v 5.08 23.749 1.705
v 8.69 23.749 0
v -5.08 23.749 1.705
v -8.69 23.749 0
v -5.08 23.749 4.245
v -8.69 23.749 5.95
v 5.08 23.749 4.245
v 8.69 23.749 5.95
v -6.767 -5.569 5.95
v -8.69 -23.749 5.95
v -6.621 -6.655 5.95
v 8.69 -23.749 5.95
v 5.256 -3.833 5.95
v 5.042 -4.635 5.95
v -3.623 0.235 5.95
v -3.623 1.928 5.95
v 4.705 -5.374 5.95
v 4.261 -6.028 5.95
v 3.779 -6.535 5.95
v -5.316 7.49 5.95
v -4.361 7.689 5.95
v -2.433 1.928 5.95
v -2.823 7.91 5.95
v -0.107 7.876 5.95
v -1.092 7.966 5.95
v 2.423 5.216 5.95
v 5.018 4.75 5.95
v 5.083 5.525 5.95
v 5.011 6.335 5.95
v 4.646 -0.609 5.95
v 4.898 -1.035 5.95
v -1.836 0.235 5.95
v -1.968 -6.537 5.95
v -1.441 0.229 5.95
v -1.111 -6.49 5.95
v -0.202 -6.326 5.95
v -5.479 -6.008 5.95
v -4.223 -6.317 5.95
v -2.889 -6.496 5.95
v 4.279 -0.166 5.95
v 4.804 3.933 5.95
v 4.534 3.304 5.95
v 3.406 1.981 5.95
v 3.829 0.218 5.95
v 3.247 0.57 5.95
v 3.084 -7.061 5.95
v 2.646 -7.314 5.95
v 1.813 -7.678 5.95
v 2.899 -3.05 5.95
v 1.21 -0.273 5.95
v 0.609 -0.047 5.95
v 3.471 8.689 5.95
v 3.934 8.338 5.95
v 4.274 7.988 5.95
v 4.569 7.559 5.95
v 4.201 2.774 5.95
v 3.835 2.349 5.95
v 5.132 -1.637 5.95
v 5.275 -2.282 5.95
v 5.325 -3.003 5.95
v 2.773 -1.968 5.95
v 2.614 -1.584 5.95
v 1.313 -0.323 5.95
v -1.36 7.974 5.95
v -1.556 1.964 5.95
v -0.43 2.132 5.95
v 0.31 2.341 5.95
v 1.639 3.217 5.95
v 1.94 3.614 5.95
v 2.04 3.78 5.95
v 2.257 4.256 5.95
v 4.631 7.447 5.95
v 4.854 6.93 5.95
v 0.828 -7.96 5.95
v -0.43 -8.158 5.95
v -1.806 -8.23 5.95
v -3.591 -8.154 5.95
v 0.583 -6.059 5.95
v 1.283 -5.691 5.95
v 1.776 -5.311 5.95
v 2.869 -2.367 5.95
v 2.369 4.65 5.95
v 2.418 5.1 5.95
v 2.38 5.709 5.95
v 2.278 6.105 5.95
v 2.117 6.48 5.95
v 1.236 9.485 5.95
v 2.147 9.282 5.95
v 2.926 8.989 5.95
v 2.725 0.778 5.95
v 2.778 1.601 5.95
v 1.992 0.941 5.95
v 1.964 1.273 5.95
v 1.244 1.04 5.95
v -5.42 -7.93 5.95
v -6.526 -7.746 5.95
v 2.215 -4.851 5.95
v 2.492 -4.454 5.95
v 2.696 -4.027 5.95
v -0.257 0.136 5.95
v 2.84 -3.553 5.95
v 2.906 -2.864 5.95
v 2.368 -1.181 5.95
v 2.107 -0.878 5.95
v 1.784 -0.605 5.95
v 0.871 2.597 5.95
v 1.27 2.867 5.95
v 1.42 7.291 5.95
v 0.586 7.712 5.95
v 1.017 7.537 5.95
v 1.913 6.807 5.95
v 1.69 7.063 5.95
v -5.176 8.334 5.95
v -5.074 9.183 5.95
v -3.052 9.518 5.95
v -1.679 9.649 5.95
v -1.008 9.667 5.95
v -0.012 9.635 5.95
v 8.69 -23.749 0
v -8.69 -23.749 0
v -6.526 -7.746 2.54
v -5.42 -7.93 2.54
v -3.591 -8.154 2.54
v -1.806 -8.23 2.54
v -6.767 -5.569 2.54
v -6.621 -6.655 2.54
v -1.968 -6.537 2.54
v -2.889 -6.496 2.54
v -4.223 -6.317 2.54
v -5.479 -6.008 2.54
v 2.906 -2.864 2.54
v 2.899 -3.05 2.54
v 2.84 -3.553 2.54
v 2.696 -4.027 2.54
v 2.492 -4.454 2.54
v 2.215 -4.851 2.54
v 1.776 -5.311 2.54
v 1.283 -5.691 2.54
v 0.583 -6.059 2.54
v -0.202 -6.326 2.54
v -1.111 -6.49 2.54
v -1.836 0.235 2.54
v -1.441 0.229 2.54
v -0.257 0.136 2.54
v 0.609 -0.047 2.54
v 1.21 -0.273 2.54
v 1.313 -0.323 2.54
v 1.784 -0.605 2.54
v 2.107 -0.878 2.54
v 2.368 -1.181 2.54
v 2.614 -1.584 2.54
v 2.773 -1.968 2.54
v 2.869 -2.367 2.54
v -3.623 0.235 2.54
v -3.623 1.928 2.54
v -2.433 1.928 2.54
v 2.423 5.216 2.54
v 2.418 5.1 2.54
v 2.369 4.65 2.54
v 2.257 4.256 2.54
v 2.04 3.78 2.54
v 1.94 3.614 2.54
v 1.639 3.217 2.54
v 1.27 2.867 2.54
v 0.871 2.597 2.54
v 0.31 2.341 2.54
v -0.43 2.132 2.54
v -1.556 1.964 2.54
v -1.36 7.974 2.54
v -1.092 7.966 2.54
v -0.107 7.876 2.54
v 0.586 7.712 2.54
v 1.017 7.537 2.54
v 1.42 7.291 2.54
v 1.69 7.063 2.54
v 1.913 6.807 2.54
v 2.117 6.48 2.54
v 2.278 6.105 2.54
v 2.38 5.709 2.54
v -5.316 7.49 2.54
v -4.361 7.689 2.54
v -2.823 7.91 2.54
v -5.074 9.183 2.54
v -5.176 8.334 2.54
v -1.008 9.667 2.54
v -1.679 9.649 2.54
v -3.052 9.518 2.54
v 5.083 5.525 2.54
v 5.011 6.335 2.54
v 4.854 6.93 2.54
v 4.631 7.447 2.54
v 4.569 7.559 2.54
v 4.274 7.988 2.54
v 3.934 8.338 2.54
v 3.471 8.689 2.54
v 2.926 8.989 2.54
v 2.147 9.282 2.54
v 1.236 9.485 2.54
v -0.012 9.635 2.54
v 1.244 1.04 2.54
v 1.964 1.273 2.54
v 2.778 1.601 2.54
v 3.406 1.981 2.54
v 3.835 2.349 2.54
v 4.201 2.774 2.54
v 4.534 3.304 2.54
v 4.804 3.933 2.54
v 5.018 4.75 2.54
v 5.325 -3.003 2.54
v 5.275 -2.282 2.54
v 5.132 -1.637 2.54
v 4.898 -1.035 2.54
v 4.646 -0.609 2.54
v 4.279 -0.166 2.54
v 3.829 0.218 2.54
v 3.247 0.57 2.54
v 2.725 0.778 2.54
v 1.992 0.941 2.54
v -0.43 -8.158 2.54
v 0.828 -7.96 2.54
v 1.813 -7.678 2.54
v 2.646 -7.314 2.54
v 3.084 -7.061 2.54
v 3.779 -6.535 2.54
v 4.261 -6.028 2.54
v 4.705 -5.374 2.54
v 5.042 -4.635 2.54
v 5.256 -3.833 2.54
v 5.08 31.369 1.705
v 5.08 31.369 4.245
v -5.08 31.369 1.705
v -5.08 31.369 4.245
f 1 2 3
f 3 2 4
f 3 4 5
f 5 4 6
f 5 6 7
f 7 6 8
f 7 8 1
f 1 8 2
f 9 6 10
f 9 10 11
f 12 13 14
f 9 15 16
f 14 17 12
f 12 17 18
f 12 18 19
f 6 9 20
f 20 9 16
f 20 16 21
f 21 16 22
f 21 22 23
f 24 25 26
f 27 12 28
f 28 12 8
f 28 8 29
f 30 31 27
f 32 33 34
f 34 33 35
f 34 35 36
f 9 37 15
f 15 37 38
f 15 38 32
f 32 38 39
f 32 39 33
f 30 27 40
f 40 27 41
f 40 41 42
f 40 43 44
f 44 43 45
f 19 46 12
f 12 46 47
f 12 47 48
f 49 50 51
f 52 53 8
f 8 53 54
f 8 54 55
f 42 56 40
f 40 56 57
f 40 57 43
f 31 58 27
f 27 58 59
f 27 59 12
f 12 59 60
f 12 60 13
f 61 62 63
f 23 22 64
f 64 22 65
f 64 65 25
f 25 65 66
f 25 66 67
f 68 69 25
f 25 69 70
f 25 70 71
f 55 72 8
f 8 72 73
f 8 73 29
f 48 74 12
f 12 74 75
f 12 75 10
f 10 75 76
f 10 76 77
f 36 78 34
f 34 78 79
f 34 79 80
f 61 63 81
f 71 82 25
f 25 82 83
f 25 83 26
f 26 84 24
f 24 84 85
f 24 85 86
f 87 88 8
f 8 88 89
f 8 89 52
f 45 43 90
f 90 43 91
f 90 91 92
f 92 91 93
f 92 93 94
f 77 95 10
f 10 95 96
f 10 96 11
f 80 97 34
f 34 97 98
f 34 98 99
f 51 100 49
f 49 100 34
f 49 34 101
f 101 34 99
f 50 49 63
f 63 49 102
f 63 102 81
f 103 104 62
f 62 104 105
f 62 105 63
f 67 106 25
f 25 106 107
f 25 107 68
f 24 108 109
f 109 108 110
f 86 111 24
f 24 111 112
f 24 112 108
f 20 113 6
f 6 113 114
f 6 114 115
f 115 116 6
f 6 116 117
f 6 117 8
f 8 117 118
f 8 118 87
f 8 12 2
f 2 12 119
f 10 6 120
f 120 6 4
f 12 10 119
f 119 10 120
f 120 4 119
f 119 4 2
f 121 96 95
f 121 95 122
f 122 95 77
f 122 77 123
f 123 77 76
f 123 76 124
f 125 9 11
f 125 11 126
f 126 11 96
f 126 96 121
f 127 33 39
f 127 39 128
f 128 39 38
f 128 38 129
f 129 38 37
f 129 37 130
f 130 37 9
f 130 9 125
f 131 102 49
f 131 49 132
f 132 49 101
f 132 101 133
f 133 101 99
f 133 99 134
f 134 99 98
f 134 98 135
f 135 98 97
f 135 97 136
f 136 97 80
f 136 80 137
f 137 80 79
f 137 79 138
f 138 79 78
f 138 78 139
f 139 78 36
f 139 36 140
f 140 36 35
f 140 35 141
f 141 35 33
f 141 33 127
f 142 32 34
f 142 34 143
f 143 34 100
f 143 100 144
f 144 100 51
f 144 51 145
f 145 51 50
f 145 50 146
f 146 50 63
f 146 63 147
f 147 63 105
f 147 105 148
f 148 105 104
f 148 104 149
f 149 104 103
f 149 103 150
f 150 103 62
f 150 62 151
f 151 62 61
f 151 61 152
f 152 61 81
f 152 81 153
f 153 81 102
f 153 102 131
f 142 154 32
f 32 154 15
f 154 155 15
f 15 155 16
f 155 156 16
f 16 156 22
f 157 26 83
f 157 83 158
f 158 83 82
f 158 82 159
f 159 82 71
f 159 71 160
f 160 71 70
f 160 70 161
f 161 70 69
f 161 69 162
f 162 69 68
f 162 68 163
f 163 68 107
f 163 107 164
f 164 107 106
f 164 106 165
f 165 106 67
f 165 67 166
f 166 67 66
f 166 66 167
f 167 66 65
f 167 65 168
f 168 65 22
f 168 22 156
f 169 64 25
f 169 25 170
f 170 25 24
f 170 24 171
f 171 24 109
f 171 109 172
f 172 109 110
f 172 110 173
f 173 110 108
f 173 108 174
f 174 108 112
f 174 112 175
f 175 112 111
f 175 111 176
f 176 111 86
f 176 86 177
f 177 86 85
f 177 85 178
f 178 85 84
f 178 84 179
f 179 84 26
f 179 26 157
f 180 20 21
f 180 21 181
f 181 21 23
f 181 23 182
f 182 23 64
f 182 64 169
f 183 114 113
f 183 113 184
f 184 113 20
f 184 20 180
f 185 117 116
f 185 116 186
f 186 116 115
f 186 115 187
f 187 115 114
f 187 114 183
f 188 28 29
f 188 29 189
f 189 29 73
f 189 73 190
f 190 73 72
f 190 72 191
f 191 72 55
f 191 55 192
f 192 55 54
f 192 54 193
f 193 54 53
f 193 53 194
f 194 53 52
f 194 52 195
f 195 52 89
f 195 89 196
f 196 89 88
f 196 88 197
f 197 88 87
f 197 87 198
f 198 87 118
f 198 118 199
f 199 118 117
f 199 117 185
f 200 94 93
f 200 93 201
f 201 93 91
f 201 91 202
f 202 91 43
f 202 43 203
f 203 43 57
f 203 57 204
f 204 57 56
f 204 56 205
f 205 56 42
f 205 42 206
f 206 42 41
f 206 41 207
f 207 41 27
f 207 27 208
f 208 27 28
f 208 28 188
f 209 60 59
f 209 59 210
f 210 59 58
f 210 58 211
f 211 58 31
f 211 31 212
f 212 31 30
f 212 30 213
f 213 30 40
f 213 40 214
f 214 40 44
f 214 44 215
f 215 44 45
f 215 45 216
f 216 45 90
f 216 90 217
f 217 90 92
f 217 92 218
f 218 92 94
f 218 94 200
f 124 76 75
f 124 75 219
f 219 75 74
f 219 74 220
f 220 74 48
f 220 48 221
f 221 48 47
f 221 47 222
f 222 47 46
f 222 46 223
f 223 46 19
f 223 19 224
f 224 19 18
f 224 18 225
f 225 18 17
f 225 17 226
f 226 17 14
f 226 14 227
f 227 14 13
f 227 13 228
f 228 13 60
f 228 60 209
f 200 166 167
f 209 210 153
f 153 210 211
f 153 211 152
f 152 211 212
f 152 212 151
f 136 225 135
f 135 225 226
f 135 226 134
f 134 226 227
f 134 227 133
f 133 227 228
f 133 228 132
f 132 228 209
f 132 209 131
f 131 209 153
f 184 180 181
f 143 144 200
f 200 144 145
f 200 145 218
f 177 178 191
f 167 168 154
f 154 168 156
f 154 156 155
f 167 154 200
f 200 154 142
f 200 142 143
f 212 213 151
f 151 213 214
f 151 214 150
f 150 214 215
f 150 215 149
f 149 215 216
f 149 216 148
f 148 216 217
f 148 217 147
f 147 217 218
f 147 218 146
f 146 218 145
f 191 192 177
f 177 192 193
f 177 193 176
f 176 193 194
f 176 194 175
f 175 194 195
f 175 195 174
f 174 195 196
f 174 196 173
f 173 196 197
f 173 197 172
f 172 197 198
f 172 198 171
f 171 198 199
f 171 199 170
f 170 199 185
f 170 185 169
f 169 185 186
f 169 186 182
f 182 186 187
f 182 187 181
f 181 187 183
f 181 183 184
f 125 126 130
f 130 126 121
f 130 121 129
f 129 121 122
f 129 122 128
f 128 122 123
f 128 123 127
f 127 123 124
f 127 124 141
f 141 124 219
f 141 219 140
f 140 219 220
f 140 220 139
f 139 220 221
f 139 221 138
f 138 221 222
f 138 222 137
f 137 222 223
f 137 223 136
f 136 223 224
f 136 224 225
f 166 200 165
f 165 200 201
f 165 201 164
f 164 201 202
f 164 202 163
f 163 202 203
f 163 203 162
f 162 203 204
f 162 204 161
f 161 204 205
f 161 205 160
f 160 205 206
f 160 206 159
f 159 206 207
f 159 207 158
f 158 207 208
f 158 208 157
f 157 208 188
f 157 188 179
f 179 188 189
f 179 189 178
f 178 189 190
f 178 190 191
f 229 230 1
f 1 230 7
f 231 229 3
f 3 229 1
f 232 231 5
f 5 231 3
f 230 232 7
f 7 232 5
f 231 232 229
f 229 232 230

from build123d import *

# Parameters (mm, degrees)
SKETCH1_W           = 17.38
SKETCH1_H           = 47.498
BOSS_EXTRUDE1_DEPTH = 5.95
CUT_EXTRUDE1_DEPTH  = 3.41
SKETCH3_W           = 10.16
SKETCH3_H           = 2.54
BOSS_EXTRUDE2_DEPTH = 7.62


with BuildPart() as part:
    # Sketch1 → Boss-Extrude1 (new body)
    with BuildSketch(Plane.XY):
        Rectangle(SKETCH1_W, SKETCH1_H)
    extrude(amount=BOSS_EXTRUDE1_DEPTH)

    # Sketch2 → Cut-Extrude1 (cut)
    with BuildSketch(Plane.XY.offset(5.95)):
        with BuildLine():
            add(Edge.make_bspline(
                [(-6.52556172, -7.745867902), (-6.541736639, -7.548099343), (-6.573175083, -7.163705708), (-6.622418565, -6.602266915), (-6.692949133, -6.075060478), (-6.743124974, -5.734210105), (-6.767407423, -5.569256574)],
                knots=[0, 0, 0, 0, 1.086986854, 2.112726256, 3.08665945, 4, 4, 4, 4], degree=3))
            add(Edge.make_bspline(
                [(-6.767407423, -5.569256574), (-6.530107504, -5.65714284), (-6.071226782, -5.827093648), (-5.393252267, -6.037243911), (-4.756216501, -6.210347647), (-4.152431156, -6.334769991), (-3.57872429, -6.427846187), (-3.025776205, -6.484148091), (-2.49184335, -6.53213088), (-2.140956001, -6.53515245), (-1.968281752, -6.536639386)],
                knots=[0, 0, 0, 0, 1.233271994, 2.384850126, 3.458654952, 4.449698821, 5.388467082, 6.290264974, 7.158626795, 8, 8, 8, 8], degree=3))
            add(Edge.make_bspline(
                [(-1.968281752, -6.536639386), (-1.75133924, -6.531980014), (-1.327278106, -6.522872262), (-0.706888473, -6.439166817), (-0.115695472, -6.315014093), (0.441587435, -6.128655567), (0.959134586, -5.891680706), (1.434346256, -5.60536251), (1.852688666, -5.254947102), (2.223631893, -4.861847073), (2.530540018, -4.420139374), (2.745748542, -3.932531949), (2.886322279, -3.410547349), (2.899628723, -3.048438292), (2.906420702, -2.86360777)],
                knots=[0, 0, 0, 0, 1.146655432, 2.241386427, 3.304909894, 4.337056057, 5.341489706, 6.310260062, 7.261210465, 8.21792905, 9.162042711, 10.089298595, 11.024724922, 12, 12, 12, 12], degree=3))
            add(Edge.make_bspline(
                [(2.906420702, -2.86360777), (2.901024718, -2.714484768), (2.890393101, -2.420670199), (2.793891256, -1.993867016), (2.631400278, -1.594911679), (2.411871676, -1.222767409), (2.129631062, -0.880783066), (1.777265044, -0.58591917), (1.362310422, -0.334947261), (0.882019785, -0.126391182), (0.326060942, 0.041506515), (-0.317039003, 0.152592763), (-1.047099623, 0.225103406), (-1.563744548, 0.231610819), (-1.836022383, 0.235040301)],
                knots=[0, 0, 0, 0, 0.838837545, 1.652747662, 2.448248001, 3.255922832, 4.076848485, 4.9323124, 5.830012564, 6.798601416, 7.873321705, 9.091954711, 10.467426588, 12, 12, 12, 12], degree=3))
            add(Edge.make_bspline(
                [(-1.836022383, 0.235040301), (-2.118175703, 0.235040301), (-2.71397267, 0.235040301), (-3.309769636, 0.235040301), (-3.623413283, 0.235040301)],
                knots=[0, 0, 0, 0, 0.947145877, 2, 2, 2, 2], degree=3))
            add(Edge.make_bspline(
                [(-3.623413283, 0.235040301), (-3.623413283, 0.401309222), (-3.623413283, 0.716212481), (-3.623413283, 1.164634723), (-3.623413283, 1.562672442), (-3.623413283, 1.812075824), (-3.623413283, 1.927960223)],
                knots=[0, 0, 0, 0, 1.178571429, 2.232142857, 3.178571429, 4, 4, 4, 4], degree=3))
            add(Edge.make_bspline(
                [(-3.623413283, 1.927960223), (-3.414317518, 1.927960223), (-3.017539412, 1.927960223), (-2.620761305, 1.927960223), (-2.433078962, 1.927960223)],
                knots=[0, 0, 0, 0, 1.053968254, 2, 2, 2, 2], degree=3))
            add(Edge.make_bspline(
                [(-2.433078962, 1.927960223), (-2.213703602, 1.930624231), (-1.782777551, 1.935857226), (-1.151023939, 2.0055806), (-0.542619853, 2.10015175), (0.035880784, 2.240575523), (0.575646904, 2.432273783), (1.055902319, 2.692411738), (1.469541725, 3.020520175), (1.811722492, 3.405969987), (2.08288473, 3.830741215), (2.27766536, 4.278496537), (2.402253448, 4.741516196), (2.415895086, 5.057332232), (2.422729296, 5.21555025)],
                knots=[0, 0, 0, 0, 1.198563504, 2.354376706, 3.470500059, 4.562664134, 5.603894105, 6.593029745, 7.533946595, 8.475140529, 9.397714259, 10.276520456, 11.136568486, 12, 12, 12, 12], degree=3))
            add(Edge.make_bspline(
                [(2.422729296, 5.21555025), (2.41848686, 5.321507932), (2.410108472, 5.530763797), (2.361808308, 5.839798802), (2.272318537, 6.136976064), (2.152371646, 6.424223648), (1.999138717, 6.693438231), (1.814730838, 6.941867492), (1.595760775, 7.159214462), (1.345598912, 7.350011462), (1.071173531, 7.516024108), (0.768770465, 7.652369954), (0.443224079, 7.761631168), (-0.02126237, 7.869550376), (-0.625047542, 7.953947292), (-1.113972164, 7.967357708), (-1.359888655, 7.974102801)],
                knots=[0, 0, 0, 0, 0.840069058, 1.659052692, 2.470886163, 3.294117981, 4.121275006, 4.91992718, 5.738789114, 6.557468464, 7.408382134, 8.275078447, 9.181128571, 10.125473558, 12.051213004, 14, 14, 14, 14], degree=3))
            add(Edge.make_bspline(
                [(-1.359888655, 7.974102801), (-1.673695553, 7.969028927), (-2.28838471, 7.959090155), (-3.055728965, 7.892689053), (-3.677904349, 7.813221258), (-4.183457732, 7.722552933), (-4.735878517, 7.618644903), (-5.117536064, 7.534329474), (-5.316333204, 7.490411395)],
                knots=[0, 0, 0, 0, 1.413699745, 2.769173996, 3.467485544, 4.239092287, 5.082781358, 6, 6, 6, 6], degree=3))
            add(Edge.make_bspline(
                [(-5.316333204, 7.490411395), (-5.295473469, 7.596092866), (-5.249427147, 7.829376891), (-5.190410995, 8.217774099), (-5.130669891, 8.676445311), (-5.094041399, 9.006913098), (-5.074487501, 9.183331317)],
                knots=[0, 0, 0, 0, 0.755535026, 1.667787633, 2.754962612, 4, 4, 4, 4], degree=3))
            add(Edge.make_bspline(
                [(-5.074487501, 9.183331317), (-4.839061429, 9.226846422), (-4.393892492, 9.309129464), (-3.762770018, 9.415006617), (-3.207342126, 9.499542218), (-2.574147348, 9.578446025), (-1.850277468, 9.651295087), (-1.284507474, 9.661865299), (-1.008456617, 9.667022723)],
                knots=[0, 0, 0, 0, 1.050947891, 1.987245303, 2.809118091, 3.516901663, 4.788445072, 6, 6, 6, 6], degree=3))
            add(Edge.make_bspline(
                [(-1.008456617, 9.667022723), (-0.787984528, 9.663669776), (-0.351690808, 9.657034605), (0.292002393, 9.617988713), (0.915587457, 9.538862965), (1.515964453, 9.441265363), (2.084281473, 9.307972062), (2.610568352, 9.135217425), (3.086978216, 8.919091142), (3.518718882, 8.670307938), (3.898229552, 8.382060206), (4.228524929, 8.059813131), (4.498719018, 7.696298707), (4.713843094, 7.300619566), (4.879671631, 6.881272468), (4.99630019, 6.442360068), (5.071173168, 5.989007724), (5.079061327, 5.680639804), (5.08303203, 5.525415057)],
                knots=[0, 0, 0, 0, 1.266958933, 2.507193661, 3.702999241, 4.87743226, 6.000982662, 7.053838483, 8.05478712, 9.001953689, 9.911049213, 10.786233696, 11.644646876, 12.503029542, 13.3672512, 14.229318255, 15.108682819, 16, 16, 16, 16], degree=3))
            add(Edge.make_bspline(
                [(5.08303203, 5.525415057), (5.073346612, 5.29136261), (5.053796783, 4.818932278), (4.907815231, 4.243673456), (4.760384651, 3.797657776), (4.628071558, 3.484699001), (4.479730584, 3.193737158), (4.263994326, 2.846554659), (3.965197708, 2.465414494), (3.563814241, 2.084654396), (3.127194483, 1.784257241), (2.736903149, 1.573559514), (2.382780475, 1.423099561), (2.056319362, 1.304292136), (1.671494725, 1.171074546), (1.392673252, 1.085594852), (1.243731493, 1.039933032)],
                knots=[0, 0, 0, 0, 1.526412492, 3.08103406, 3.853748594, 4.594850058, 5.297651013, 5.984869021, 7.262097787, 8.449404989, 9.583765836, 10.713822146, 11.340398739, 12.095345308, 12.982565373, 14, 14, 14, 14], degree=3))
            add(Edge.make_bspline(
                [(1.243731493, 1.039933032), (1.403759525, 1.020356376), (1.704175687, 0.983605665), (2.122673042, 0.923789077), (2.475141845, 0.846858293), (2.864130218, 0.743713734), (3.303014609, 0.555758637), (3.794772208, 0.258479198), (4.254320263, -0.114504015), (4.574491765, -0.49806429), (4.798045633, -0.832017921), (4.936330324, -1.107824276), (5.058160875, -1.397737762), (5.187274335, -1.807722085), (5.303551629, -2.343509578), (5.317731548, -2.782293192), (5.324877733, -3.003424817)],
                knots=[0, 0, 0, 0, 1.05140306, 1.973769637, 2.755120881, 3.402765032, 4.595667385, 5.852196341, 7.141559267, 8.435179725, 9.093568746, 9.758483696, 10.443391522, 11.14214712, 12.559741904, 14, 14, 14, 14], degree=3))
            add(Edge.make_bspline(
                [(5.324877733, -3.003424817), (5.318853578, -3.20043409), (5.306908792, -3.591067038), (5.195219007, -4.166898163), (5.021598461, -4.725154765), (4.780241026, -5.261346273), (4.473837665, -5.76351089), (4.109742558, -6.225711012), (3.681374753, -6.635564365), (3.200544791, -6.997013579), (2.674933003, -7.311812541), (2.107945699, -7.568355733), (1.514168959, -7.792857134), (0.885662086, -7.953548794), (0.235517943, -8.078548986), (-0.432333007, -8.163130761), (-1.114600952, -8.218254877), (-1.57391487, -8.225766961), (-1.80579167, -8.229559308)],
                knots=[0, 0, 0, 0, 0.951341382, 1.886333989, 2.824097537, 3.772375449, 4.720457901, 5.660826572, 6.608087648, 7.57733893, 8.562991247, 9.562683413, 10.581673707, 11.627217792, 12.693490673, 13.78016521, 14.879354254, 16, 16, 16, 16], degree=3))
            add(Edge.make_bspline(
                [(-1.80579167, -8.229559308), (-2.149802637, -8.224115148), (-2.847428076, -8.213074847), (-3.73293587, -8.146076159), (-4.482524718, -8.068898196), (-5.10897433, -7.976987959), (-5.797472847, -7.874373492), (-6.276345169, -7.789853906), (-6.52556172, -7.745867902)],
                knots=[0, 0, 0, 0, 1.303243722, 2.642869155, 3.362762632, 4.157791809, 5.041271022, 6, 6, 6, 6], degree=3))
        make_face()
    extrude(amount=-CUT_EXTRUDE1_DEPTH, mode=Mode.SUBTRACT)

    # Sketch3 → Boss-Extrude2 (add)
    with BuildSketch(Plane(origin=(0, 23.749, 0), x_dir=(1, 0, 0), z_dir=(0, 1, 0))):
        with Locations((0, -2.975)):
            Rectangle(SKETCH3_W, SKETCH3_H)
    extrude(amount=BOSS_EXTRUDE2_DEPTH)


solid = part.part
